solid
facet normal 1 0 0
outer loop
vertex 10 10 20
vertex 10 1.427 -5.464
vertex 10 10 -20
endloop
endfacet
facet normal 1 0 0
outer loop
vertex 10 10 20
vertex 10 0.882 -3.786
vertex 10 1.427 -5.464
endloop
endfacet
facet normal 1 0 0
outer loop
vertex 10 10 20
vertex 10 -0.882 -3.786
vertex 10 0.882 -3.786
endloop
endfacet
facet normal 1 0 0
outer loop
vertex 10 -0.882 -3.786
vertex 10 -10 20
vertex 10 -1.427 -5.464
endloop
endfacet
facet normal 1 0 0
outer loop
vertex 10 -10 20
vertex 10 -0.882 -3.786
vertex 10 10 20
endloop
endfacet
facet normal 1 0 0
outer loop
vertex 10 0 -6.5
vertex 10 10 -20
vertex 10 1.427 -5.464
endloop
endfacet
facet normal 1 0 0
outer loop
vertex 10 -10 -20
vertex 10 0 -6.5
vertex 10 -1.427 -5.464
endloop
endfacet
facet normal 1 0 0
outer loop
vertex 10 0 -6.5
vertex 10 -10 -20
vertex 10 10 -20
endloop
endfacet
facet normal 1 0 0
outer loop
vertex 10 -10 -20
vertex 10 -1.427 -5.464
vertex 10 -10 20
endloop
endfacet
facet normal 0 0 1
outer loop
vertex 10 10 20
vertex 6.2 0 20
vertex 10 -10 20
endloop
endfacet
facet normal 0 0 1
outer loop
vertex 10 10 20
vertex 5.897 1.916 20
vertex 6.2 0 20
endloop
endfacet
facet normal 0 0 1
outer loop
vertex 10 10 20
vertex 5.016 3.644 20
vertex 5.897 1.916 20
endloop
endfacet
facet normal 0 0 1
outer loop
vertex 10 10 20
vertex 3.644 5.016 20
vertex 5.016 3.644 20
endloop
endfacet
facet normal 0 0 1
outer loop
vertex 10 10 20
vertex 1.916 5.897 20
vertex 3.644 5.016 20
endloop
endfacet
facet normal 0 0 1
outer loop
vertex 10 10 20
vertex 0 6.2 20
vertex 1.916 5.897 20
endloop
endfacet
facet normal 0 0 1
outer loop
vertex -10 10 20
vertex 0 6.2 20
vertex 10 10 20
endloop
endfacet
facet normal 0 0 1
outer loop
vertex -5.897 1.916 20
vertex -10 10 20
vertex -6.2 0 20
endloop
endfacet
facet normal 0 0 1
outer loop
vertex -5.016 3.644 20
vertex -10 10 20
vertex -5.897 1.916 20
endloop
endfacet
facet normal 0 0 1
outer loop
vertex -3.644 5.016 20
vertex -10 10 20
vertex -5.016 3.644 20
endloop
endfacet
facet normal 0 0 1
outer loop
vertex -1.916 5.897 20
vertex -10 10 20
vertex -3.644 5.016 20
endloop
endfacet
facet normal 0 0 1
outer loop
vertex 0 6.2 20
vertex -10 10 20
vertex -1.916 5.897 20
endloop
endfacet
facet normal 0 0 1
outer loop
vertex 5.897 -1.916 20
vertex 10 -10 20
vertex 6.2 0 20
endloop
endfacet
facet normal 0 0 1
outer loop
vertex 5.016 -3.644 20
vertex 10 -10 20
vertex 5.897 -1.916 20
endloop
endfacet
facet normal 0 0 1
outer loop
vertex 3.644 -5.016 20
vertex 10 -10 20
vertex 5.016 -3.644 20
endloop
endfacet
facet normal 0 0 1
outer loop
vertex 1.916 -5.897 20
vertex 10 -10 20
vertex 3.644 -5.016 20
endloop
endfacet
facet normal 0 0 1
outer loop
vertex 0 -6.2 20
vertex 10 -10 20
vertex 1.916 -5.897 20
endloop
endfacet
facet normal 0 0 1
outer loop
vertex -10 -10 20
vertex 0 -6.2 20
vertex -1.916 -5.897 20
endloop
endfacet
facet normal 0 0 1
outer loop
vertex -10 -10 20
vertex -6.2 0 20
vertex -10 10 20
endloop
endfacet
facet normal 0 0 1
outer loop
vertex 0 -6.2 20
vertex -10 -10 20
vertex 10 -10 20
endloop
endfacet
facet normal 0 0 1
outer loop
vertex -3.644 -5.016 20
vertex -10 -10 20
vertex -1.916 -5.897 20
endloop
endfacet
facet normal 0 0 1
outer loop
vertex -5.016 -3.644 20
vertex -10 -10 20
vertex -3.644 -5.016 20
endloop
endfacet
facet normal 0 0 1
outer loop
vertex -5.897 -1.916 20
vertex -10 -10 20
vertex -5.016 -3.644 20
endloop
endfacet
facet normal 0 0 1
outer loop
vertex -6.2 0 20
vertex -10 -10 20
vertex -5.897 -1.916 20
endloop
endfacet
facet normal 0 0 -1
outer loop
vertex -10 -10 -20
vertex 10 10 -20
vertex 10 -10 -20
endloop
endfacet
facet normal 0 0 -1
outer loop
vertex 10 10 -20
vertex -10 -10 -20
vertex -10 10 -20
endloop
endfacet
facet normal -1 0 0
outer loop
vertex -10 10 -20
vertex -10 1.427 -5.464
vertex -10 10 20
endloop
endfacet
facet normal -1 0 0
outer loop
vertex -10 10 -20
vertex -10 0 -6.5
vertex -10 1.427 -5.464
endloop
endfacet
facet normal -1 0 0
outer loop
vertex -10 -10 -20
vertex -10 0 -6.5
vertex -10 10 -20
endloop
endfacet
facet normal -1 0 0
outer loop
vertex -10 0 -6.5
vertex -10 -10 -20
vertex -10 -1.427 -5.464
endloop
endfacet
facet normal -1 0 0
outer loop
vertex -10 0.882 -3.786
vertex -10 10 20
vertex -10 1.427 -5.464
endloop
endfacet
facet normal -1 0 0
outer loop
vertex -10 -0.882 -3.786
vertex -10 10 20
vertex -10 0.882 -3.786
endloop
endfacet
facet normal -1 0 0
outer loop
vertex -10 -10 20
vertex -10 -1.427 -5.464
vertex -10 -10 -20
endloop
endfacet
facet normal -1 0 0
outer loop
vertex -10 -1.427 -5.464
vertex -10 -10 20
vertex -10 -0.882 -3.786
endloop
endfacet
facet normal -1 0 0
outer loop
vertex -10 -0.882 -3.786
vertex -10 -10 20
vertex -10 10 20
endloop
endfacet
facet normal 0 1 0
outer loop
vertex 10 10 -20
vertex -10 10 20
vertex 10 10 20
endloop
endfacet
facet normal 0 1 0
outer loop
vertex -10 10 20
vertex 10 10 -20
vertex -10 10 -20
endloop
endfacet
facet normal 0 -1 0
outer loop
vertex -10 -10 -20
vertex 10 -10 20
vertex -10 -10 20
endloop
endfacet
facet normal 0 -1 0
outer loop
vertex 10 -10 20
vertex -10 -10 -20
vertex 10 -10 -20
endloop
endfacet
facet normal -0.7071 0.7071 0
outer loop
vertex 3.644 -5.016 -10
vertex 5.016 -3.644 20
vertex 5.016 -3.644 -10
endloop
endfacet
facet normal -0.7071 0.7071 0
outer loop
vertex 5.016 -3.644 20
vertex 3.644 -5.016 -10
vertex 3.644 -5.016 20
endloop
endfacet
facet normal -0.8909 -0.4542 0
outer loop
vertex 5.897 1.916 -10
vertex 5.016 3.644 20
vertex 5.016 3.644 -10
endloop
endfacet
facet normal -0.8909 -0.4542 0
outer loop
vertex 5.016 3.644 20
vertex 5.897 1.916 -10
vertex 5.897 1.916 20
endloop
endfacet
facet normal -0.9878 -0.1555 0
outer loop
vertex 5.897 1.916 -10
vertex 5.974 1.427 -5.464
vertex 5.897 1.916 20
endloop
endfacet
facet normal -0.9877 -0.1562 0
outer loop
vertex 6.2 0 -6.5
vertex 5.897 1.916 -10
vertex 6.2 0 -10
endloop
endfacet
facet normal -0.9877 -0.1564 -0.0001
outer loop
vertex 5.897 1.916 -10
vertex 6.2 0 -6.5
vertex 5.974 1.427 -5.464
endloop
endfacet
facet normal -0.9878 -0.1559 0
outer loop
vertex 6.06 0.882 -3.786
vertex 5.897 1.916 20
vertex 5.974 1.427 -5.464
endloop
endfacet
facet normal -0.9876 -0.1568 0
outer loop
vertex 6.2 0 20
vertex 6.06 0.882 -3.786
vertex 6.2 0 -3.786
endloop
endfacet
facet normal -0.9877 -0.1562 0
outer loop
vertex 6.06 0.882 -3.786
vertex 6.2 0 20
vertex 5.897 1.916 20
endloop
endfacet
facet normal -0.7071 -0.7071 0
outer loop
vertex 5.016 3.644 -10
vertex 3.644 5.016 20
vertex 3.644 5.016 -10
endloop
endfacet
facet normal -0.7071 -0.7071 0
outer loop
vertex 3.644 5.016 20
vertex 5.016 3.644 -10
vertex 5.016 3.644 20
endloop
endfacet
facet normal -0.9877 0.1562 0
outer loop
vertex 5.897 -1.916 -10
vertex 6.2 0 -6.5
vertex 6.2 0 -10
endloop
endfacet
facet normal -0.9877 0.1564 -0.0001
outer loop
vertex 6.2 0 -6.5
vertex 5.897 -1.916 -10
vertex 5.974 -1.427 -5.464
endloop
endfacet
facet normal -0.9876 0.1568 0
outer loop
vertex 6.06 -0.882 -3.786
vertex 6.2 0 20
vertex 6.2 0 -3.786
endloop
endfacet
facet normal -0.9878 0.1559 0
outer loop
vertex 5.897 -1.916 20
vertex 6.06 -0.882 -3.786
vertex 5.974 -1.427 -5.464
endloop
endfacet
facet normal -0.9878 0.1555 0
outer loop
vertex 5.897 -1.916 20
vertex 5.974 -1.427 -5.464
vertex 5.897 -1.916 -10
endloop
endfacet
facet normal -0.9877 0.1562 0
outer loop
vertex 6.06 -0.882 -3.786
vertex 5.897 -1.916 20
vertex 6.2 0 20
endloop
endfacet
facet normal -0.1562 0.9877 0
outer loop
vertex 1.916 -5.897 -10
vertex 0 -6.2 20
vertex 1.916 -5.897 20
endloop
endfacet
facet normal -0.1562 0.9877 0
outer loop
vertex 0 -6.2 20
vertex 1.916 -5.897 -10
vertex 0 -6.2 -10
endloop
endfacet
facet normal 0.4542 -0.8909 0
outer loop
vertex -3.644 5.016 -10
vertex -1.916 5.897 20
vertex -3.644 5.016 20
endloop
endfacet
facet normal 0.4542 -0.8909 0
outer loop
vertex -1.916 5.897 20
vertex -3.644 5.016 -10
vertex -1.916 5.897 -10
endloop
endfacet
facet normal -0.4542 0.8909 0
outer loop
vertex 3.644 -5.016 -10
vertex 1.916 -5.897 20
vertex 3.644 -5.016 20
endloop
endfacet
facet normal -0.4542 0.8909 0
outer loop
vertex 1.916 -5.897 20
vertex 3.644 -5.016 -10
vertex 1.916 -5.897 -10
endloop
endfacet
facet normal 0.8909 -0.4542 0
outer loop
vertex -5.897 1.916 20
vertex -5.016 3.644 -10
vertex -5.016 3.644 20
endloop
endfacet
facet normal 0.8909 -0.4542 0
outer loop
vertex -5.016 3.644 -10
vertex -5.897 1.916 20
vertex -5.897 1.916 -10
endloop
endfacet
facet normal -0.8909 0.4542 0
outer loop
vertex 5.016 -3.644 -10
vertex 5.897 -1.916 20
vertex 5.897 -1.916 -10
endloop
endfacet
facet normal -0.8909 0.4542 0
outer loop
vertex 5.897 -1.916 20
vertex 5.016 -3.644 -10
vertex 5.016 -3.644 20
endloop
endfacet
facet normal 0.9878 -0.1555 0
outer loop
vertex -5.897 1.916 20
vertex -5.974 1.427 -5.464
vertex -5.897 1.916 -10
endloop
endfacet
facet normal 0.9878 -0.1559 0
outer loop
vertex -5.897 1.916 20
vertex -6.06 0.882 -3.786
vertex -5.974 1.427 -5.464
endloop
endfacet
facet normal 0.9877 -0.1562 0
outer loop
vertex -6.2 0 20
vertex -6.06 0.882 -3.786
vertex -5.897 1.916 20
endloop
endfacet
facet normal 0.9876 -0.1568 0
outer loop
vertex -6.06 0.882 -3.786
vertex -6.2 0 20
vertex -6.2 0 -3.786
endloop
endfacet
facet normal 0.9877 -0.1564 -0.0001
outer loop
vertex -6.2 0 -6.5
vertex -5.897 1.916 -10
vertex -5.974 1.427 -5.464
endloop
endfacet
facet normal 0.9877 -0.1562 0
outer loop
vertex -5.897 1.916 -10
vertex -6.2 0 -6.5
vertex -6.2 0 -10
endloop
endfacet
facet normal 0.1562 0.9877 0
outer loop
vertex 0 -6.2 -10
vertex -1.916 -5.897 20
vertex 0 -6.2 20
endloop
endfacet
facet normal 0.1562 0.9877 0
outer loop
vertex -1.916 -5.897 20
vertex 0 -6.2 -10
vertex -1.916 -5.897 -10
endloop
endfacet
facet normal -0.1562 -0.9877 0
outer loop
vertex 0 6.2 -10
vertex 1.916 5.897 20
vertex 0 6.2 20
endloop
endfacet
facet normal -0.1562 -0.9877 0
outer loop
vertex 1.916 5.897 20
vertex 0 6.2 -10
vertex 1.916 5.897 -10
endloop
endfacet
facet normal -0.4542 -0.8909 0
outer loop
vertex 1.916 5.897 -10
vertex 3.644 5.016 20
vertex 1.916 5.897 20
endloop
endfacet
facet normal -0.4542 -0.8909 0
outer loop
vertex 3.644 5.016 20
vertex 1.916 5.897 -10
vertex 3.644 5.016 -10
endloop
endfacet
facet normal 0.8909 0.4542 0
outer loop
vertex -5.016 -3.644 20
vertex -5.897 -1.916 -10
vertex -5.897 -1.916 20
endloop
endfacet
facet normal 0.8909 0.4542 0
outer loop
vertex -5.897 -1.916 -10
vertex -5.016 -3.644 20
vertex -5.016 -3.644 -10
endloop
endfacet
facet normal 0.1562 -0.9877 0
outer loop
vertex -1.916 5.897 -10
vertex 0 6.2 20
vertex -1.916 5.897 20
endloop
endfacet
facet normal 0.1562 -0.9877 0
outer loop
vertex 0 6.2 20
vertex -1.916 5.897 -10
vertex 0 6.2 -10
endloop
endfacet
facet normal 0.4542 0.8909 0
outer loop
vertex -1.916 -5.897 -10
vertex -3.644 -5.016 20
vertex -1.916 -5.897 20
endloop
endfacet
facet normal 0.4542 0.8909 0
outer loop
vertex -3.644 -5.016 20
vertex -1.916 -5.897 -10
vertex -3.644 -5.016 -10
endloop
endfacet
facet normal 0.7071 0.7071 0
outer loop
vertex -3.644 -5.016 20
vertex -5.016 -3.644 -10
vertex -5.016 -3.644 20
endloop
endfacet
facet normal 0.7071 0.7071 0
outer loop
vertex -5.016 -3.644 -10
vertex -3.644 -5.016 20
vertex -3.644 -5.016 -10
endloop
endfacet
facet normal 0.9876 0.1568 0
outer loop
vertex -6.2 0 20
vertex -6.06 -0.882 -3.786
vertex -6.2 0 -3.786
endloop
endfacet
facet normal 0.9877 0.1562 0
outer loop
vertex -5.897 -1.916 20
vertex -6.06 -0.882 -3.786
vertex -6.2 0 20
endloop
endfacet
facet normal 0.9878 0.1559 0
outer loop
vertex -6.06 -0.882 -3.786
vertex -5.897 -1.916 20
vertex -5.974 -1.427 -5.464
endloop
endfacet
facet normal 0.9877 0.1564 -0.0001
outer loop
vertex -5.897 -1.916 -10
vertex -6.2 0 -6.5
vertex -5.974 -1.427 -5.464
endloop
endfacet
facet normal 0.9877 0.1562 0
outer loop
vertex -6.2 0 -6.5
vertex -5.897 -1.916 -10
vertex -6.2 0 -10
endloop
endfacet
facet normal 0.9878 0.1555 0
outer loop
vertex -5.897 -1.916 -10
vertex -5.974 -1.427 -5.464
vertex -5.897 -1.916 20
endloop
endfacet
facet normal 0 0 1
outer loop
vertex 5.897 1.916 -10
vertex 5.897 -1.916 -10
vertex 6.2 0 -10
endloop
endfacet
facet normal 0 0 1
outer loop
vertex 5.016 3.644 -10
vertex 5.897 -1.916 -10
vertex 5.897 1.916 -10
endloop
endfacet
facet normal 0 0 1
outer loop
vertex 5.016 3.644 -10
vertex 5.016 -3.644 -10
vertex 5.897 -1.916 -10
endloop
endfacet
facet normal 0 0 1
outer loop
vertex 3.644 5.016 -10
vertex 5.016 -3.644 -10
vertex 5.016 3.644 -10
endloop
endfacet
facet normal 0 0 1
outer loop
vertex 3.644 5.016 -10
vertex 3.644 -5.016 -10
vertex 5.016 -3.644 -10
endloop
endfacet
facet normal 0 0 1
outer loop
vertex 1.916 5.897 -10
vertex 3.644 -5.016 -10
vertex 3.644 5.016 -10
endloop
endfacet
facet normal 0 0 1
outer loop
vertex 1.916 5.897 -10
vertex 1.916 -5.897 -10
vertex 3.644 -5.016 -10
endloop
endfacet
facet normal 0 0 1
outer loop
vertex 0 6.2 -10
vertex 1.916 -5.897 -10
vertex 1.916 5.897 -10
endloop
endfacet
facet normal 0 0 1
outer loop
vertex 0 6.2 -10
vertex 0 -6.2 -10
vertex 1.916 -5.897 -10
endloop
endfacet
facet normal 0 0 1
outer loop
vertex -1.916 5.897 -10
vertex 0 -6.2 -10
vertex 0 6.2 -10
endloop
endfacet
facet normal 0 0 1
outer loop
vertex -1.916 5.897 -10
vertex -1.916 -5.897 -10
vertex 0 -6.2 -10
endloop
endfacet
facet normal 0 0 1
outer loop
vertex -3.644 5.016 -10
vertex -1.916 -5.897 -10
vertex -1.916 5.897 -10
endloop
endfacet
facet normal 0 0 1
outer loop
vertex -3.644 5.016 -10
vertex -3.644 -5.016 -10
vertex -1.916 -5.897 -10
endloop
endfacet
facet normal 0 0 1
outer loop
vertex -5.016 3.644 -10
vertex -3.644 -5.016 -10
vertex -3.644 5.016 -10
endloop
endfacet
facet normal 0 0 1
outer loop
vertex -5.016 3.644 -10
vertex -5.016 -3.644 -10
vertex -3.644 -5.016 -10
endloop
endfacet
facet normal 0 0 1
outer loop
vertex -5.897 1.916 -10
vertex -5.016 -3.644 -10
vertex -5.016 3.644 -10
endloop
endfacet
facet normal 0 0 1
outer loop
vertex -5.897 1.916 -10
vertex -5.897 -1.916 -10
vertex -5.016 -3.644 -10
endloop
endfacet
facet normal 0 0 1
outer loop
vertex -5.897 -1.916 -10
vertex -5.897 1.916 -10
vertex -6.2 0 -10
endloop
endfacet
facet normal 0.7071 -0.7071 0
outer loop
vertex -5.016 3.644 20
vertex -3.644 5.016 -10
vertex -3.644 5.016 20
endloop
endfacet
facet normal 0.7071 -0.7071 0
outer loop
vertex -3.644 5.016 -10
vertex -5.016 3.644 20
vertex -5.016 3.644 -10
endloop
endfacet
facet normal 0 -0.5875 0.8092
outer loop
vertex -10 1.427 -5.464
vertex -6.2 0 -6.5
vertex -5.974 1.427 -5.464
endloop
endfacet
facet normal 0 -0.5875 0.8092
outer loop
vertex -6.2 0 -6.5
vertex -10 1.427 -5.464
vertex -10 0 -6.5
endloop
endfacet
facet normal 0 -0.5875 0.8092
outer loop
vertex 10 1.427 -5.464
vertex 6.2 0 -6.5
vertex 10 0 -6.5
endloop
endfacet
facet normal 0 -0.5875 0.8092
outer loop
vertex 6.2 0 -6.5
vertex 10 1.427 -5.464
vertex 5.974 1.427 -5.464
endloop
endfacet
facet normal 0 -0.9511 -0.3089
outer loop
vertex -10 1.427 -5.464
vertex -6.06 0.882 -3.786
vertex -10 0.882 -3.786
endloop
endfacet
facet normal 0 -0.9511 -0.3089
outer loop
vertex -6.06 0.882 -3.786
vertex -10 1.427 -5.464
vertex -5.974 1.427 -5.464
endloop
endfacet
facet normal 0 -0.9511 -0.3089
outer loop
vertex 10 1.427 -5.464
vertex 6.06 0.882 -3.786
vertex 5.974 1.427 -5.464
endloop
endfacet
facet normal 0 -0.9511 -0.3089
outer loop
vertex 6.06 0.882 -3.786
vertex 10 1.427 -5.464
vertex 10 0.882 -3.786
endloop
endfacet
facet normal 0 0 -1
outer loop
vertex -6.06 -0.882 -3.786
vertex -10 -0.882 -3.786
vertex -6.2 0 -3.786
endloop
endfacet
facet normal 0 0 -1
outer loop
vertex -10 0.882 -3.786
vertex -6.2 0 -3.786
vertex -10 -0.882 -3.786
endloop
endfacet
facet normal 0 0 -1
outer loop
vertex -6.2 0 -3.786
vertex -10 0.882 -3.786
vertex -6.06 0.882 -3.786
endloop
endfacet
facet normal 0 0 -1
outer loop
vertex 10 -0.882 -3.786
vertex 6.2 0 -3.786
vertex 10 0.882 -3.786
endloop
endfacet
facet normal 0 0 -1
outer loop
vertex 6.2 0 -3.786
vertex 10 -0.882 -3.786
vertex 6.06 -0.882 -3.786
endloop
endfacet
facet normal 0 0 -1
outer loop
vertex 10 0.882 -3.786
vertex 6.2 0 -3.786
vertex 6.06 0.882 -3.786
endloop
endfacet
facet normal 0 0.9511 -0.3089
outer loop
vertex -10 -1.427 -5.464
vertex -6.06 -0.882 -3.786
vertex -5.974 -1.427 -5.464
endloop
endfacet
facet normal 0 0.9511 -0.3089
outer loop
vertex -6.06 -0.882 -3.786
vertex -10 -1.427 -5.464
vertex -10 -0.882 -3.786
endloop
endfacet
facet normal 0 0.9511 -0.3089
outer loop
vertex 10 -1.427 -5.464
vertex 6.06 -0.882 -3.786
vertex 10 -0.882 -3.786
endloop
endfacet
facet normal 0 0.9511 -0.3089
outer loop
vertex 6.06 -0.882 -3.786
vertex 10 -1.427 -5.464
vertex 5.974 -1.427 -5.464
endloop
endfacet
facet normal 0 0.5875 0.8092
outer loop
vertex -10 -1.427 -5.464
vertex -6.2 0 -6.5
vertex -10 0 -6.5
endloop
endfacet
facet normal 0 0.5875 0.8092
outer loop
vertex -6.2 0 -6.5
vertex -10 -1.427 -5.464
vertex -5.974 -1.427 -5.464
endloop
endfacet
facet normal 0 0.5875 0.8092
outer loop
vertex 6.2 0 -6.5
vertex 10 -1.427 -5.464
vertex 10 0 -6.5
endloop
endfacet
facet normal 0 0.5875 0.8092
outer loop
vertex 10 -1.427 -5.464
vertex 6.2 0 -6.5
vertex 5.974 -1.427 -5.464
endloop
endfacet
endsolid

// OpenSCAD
trubicka = 12.4;
dira=3;

difference(){
	cube([20,20,40],center=true);
	translate([0,0,10]) cylinder(d=trubicka,h=40,center=true);
	translate([0,0,-5]) rotate([0,90,0]) cylinder(d=dira,h=40,center=true);
}
